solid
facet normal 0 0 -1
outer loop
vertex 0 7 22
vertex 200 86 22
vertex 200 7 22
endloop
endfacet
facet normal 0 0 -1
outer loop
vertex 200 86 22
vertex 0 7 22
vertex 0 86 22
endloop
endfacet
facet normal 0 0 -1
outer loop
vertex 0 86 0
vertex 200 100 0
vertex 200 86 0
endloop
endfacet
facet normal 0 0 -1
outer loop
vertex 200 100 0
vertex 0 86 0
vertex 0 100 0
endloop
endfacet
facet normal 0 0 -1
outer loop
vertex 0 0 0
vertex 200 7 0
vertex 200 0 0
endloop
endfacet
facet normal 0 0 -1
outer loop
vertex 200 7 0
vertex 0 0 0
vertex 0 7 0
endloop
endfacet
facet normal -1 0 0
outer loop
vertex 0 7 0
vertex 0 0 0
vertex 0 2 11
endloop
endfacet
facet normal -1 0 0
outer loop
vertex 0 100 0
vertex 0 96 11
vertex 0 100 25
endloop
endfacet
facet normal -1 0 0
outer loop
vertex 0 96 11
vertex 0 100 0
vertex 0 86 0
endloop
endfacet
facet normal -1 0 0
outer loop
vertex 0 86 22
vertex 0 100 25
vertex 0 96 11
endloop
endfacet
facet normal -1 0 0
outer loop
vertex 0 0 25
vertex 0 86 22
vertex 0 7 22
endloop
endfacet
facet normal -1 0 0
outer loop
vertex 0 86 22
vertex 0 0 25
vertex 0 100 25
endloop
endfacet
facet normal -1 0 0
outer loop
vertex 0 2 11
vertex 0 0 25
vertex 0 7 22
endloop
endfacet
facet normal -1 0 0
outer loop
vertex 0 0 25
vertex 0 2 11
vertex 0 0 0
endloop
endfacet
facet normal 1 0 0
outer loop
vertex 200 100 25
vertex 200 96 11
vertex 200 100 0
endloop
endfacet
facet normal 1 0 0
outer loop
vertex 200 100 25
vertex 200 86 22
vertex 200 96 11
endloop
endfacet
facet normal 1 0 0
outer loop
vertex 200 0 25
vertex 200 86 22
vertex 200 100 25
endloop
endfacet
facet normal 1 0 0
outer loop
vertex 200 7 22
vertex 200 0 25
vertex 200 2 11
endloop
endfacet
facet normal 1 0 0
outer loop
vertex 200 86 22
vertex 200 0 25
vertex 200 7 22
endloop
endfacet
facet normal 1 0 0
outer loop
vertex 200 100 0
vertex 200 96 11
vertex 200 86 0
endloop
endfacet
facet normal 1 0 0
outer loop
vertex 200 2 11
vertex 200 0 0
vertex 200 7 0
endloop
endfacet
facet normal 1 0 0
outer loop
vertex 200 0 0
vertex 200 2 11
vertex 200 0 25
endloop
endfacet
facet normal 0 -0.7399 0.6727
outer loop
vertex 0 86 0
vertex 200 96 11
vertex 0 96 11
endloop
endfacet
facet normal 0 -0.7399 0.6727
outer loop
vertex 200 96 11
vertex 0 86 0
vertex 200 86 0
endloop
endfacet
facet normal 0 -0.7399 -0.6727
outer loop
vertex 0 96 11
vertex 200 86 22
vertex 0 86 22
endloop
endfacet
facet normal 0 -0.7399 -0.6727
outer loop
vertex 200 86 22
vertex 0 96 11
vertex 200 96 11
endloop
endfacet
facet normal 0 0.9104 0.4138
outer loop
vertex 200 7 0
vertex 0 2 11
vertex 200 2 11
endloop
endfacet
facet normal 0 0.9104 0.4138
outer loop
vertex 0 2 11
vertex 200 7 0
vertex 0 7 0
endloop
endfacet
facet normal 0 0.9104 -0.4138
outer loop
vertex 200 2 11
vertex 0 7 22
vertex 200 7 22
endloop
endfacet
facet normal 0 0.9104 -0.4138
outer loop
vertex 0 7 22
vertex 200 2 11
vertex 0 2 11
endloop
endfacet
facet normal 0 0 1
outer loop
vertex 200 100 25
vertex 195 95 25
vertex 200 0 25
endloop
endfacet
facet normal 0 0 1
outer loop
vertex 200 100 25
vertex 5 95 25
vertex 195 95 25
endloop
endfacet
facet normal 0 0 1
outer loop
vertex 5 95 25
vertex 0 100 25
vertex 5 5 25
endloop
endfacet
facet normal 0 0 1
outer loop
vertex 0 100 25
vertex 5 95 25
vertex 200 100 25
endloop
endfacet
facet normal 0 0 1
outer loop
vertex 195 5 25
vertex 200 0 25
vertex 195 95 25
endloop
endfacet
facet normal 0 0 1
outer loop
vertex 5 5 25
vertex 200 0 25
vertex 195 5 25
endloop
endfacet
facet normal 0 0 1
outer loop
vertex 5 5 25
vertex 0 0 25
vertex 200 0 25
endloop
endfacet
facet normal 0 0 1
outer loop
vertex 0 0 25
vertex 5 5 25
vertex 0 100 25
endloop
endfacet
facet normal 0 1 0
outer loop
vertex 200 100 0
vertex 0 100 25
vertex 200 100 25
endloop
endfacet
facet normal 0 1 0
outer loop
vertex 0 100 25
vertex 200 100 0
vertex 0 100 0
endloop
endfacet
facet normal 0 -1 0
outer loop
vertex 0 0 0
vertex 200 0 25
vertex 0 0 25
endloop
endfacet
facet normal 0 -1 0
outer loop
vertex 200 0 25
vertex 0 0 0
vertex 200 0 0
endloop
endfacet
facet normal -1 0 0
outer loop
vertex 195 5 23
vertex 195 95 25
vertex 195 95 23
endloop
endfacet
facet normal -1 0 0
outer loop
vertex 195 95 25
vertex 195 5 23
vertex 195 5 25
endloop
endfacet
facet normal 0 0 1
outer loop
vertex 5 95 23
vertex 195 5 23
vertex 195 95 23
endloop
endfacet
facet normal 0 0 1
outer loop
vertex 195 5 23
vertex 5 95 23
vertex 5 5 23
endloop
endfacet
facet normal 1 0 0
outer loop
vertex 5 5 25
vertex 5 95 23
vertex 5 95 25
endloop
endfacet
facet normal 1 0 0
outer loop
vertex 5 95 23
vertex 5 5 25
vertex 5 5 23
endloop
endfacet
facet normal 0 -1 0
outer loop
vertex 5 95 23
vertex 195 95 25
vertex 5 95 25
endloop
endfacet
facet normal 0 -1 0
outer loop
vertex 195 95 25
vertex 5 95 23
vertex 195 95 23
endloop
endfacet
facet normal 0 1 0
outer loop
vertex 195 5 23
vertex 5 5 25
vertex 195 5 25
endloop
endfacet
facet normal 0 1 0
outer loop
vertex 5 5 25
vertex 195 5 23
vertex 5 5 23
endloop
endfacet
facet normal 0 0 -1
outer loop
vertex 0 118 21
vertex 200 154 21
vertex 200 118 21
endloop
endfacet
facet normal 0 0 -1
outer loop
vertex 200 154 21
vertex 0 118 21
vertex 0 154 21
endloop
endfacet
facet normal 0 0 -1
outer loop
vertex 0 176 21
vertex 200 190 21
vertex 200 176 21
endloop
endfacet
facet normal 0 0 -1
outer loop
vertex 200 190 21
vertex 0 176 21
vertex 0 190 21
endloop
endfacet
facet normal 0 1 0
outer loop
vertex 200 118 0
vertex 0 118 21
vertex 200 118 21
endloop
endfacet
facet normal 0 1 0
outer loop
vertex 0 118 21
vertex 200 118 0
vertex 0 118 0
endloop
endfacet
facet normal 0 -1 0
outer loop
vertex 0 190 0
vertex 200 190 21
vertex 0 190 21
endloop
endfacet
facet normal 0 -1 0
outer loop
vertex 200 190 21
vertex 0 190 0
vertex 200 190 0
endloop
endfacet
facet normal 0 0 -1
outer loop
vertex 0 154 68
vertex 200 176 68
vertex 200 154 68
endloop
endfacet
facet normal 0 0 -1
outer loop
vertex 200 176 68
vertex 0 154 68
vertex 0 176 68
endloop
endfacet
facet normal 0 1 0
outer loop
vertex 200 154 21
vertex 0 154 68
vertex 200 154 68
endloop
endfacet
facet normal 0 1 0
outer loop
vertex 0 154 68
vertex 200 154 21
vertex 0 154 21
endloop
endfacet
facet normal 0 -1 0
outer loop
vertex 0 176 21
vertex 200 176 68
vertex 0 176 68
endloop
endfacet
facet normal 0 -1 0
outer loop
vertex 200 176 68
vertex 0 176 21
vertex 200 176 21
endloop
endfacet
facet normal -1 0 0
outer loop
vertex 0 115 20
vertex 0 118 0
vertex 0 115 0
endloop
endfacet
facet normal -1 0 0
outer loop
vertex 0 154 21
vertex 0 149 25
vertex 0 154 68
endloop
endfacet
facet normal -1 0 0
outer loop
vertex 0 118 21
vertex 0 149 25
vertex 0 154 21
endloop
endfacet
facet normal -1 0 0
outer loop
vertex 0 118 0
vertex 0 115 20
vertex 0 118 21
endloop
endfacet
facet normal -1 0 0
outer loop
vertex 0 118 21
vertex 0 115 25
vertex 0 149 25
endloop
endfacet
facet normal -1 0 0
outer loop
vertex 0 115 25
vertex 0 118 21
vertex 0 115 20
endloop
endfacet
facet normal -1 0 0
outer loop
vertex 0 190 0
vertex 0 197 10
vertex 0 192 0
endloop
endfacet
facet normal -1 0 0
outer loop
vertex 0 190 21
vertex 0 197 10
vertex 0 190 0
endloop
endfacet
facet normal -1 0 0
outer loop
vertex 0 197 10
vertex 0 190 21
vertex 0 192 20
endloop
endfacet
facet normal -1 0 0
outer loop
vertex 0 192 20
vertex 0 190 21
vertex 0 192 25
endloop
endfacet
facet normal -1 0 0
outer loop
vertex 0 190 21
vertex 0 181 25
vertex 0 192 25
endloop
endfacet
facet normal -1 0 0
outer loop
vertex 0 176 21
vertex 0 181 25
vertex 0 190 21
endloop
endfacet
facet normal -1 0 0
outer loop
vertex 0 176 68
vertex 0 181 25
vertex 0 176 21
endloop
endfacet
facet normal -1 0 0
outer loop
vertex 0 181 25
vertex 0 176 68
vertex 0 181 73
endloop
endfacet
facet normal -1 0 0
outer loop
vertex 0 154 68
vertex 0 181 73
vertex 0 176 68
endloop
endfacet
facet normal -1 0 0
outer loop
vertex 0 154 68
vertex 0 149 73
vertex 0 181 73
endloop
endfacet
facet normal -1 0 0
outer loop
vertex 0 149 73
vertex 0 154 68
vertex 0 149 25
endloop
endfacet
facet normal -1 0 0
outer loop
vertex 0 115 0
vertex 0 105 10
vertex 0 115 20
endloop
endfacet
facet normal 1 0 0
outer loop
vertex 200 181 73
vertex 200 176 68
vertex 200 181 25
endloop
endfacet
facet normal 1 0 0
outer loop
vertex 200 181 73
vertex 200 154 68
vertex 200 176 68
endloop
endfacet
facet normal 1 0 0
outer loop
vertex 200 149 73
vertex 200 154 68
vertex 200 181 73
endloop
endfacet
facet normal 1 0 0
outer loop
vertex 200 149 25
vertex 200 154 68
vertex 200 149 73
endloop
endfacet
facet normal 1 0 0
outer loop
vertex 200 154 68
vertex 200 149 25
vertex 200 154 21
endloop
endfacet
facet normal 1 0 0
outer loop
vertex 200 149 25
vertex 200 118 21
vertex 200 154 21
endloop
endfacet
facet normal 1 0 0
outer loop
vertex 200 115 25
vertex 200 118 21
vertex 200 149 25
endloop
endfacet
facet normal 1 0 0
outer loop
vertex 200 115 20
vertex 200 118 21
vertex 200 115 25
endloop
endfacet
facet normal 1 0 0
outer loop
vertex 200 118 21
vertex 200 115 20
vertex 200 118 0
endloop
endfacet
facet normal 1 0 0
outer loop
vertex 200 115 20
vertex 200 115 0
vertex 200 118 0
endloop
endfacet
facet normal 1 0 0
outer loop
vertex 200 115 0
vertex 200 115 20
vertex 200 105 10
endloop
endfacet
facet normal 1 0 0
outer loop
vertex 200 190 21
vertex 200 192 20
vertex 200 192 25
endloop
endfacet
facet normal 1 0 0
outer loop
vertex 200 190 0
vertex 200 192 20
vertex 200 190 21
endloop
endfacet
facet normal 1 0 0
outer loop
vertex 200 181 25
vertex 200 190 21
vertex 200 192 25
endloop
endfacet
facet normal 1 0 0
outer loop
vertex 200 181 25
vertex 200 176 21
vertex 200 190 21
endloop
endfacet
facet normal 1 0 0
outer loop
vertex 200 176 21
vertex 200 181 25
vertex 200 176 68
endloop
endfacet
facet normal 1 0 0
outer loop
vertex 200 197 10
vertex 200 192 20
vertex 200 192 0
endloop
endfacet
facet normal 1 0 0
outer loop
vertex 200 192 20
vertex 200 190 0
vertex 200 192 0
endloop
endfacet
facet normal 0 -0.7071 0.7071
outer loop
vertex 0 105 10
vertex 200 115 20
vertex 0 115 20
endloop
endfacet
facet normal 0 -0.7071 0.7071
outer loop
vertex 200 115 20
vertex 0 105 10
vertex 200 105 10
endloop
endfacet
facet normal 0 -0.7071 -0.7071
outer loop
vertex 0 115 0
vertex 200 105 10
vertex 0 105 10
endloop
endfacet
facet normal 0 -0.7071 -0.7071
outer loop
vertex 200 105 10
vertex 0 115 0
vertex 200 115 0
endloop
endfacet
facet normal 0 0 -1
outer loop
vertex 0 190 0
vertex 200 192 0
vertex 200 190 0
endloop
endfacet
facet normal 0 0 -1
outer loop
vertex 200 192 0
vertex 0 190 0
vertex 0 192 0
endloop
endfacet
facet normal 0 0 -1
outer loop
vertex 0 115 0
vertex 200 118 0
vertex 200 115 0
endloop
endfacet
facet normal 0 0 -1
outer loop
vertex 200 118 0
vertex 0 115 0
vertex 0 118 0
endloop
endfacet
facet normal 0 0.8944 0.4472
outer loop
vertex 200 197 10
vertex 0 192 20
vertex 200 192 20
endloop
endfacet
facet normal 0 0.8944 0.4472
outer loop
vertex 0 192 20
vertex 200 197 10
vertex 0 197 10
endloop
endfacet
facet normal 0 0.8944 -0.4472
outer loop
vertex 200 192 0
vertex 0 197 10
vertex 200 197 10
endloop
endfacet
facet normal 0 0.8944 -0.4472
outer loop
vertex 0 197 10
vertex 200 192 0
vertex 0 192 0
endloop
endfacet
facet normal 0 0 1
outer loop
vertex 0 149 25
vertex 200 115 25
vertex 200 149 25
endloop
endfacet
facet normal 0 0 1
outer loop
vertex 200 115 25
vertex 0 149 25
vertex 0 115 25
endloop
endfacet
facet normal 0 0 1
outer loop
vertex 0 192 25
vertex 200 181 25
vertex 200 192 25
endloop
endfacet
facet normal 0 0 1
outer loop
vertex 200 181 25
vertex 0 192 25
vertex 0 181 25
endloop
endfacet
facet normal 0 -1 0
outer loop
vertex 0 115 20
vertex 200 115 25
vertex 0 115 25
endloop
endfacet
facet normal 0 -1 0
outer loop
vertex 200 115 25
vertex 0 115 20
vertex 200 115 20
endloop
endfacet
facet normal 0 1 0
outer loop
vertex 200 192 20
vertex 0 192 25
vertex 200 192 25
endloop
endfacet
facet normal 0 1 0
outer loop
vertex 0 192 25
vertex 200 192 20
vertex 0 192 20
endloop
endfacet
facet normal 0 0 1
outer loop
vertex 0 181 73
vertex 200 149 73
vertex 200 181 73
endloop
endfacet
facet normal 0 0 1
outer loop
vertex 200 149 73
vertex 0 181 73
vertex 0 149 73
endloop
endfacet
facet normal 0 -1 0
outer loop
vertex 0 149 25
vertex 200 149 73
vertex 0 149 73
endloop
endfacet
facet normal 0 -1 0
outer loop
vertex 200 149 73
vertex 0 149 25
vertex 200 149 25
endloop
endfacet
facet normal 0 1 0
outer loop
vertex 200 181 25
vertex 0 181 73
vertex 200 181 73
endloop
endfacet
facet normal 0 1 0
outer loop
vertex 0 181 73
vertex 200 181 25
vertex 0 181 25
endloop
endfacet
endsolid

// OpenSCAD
export_stl_mode = true;

thickness_top = 5;
recession_depth = 2;

module bed_bar(margin) {
    width = 300;
    length_top = 70;
    height_top = 20;
    length_bottom = 20;
    height_bottom = 45;
    // top
    translate([-50, 0, 0])
    cube([width, length_top+margin*2, height_top+margin*2]);
    //bottom
    translate([-50, 15-margin, -height_bottom-margin*2])
    cube([width, length_bottom+margin*2, height_bottom+margin*2]);
}

module joint(margin, bed_margin) {
    // 奥
    translate([0, margin, bed_margin])
    polyhedron(
        [
            [0, 85, 0-bed_margin],  // 0
            [0, 95, 10],            // 1
            [0, 85, 20+bed_margin], // 2
            [200, 85, 0-bed_margin],  // 3
            [200, 95, 10],            // 4
            [200, 85, 20+bed_margin], // 5
        ],
        [
            [0, 1, 2], [0, 3, 4, 1], [1, 4, 5, 2], [3, 0, 2, 5], [3, 5, 4],
        ]
    );
    // 真ん中
    padding_front = 8;
    translate([0, padding_front-margin, 0])
    cube([200, 70+margin*2+15-padding_front, 20+bed_margin*2]);
    // 手前
    thickness = 5;
    margin_front = 3;
    translate([0, -margin, bed_margin])
    polyhedron(
        [
            [0, margin_front+thickness, 0-bed_margin],  // 0
            [0, margin_front, 10],                      // 1
            [0, margin_front+thickness, 20+bed_margin], // 2
            [200, margin_front+thickness, 0-bed_margin],  // 3
            [200, margin_front, 10],                      // 4
            [200, margin_front+thickness, 20+bed_margin], // 5
        ],
        [
            [0, 2, 1], [3, 0, 1, 4], [4, 1, 2, 5], [0, 3, 5, 2], [3, 4, 5],
        ]
    );
}

module part_top() {
    width = 200;
    length = 100;
    bed_height = 20;
    height = bed_height + thickness_top;
    thickness_front = 10;
    
    difference()
    {
        // 本体
        cube([width, length, height]);
        
        // 凹み
        padding = 5;
        recession_depth = 2;
        color([0, 0, 1])
        translate([padding, padding, height-recession_depth])
        cube([width-padding*2, length-padding*2, recession_depth]);
        
        // ベッドのバー
        color([1, 0, 0])
        translate([0, thickness_front, 0])
        bed_bar(1);
        
        // 継ぎ目
        color([0, 1, 0])
        joint(1, 1);
    }
}

module part_bottom() {
    thickness = 5;
    bed_margin = 1;
    width = 200;
    length = 70;
    height_bottom = 45+thickness+bed_margin*2;
    length_bottom = 20+thickness*2+bed_margin*2;
    thickness_front = 10;

    difference()
    {
        union()
        {
            // 継ぎ目
            color([0, 1, 0])
            translate([0, 0, 1])
            joint(0, 0);
            
            // 下の部分
            color([0, 0, 1])
            translate([0, thickness_front-2, -thickness+bed_margin])
            cube([width, length+7, thickness]);
            
            // 更に下の部分
            color([0, 1, 1])
            translate([0, 20-bed_margin, -height_bottom])
            cube([width, length_bottom, height_bottom]);
        }

        // ベッドのバー
        color([1, 0, 0])
        translate([0, thickness_front, 0])
        bed_bar(1);
    }
}


// 本体
part_top();

if (export_stl_mode) {
    translate([0, 200, 21])
    rotate([180, 0, 0])
    part_bottom();
} else {
    part_bottom();
}
